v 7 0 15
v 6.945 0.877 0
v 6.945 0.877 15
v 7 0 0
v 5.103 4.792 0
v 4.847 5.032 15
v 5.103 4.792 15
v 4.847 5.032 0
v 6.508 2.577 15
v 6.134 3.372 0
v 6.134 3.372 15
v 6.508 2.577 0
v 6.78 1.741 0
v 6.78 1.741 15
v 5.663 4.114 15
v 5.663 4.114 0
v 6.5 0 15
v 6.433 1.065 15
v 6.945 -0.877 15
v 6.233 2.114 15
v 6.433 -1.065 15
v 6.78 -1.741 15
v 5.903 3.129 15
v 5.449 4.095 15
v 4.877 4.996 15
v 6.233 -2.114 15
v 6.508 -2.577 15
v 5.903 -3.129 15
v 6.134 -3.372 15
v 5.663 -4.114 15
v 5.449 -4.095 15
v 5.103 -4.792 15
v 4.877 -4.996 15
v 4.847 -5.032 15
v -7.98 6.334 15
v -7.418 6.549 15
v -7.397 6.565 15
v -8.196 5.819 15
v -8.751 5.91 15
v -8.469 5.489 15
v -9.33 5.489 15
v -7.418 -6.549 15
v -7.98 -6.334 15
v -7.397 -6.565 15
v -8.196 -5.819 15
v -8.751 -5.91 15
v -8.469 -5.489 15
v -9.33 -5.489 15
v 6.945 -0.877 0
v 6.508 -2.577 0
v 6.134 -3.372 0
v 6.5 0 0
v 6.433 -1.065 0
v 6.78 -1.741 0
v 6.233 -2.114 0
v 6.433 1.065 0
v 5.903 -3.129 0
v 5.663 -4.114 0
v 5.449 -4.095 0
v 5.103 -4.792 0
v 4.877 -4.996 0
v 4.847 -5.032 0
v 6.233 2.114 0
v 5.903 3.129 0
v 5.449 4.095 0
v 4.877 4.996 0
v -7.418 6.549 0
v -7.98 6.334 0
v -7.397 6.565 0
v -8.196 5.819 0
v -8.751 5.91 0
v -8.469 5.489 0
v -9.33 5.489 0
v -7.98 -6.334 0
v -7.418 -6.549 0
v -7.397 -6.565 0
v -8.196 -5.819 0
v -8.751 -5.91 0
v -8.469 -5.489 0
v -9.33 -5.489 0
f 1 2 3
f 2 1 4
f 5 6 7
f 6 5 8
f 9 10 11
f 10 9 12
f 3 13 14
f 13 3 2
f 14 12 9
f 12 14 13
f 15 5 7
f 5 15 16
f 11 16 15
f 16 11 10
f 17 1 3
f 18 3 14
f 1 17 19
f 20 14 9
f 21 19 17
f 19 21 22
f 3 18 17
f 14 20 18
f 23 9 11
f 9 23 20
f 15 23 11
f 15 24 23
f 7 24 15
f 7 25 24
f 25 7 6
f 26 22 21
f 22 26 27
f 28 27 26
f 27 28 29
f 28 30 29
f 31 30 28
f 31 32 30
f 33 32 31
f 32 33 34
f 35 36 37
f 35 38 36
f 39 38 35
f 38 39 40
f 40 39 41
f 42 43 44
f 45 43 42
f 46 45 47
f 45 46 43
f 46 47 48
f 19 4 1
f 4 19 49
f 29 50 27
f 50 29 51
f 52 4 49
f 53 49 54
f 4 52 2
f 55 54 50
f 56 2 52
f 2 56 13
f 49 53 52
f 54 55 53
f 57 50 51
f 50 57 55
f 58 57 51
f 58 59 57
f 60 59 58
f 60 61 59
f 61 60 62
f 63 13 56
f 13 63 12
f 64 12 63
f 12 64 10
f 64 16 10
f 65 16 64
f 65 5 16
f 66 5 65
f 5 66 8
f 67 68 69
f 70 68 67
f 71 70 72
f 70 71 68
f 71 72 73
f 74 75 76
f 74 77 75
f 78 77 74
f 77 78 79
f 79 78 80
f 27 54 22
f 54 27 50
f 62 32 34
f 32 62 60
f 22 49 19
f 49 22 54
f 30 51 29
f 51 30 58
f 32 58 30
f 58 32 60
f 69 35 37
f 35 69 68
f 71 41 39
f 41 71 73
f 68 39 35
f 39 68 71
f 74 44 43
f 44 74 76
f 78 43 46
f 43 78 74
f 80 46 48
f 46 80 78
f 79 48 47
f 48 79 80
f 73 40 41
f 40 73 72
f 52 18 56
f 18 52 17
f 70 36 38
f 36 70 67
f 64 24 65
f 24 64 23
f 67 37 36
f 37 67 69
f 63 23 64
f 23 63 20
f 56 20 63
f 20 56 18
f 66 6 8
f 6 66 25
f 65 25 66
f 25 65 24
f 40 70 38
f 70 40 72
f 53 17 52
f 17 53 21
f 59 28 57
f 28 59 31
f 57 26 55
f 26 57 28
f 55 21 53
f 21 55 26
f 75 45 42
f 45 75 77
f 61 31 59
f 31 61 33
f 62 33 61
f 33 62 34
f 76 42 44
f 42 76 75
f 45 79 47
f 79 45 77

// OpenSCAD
$fn = 50;


difference() {
	union() {
		cylinder(h = 15, r = 7.0000000000);
		translate(v = [-5.0000000000, 0, 0]) {
			cylinder(h = 15, r = 7.0000000000);
		}
	}
	union() {
		cylinder(h = 15, r = 3.2500000000);
		cylinder(h = 15, r = 1.8000000000);
		cylinder(h = 15, r = 1.8000000000);
		cylinder(h = 15, r = 1.8000000000);
		translate(v = [-9.5000000000, 0, 0]) {
			hull() {
				translate(v = [-3.7500000000, 0.0000000000, 0]) {
					cylinder(h = 15, r = 5.5000000000);
				}
				translate(v = [3.7500000000, 0.0000000000, 0]) {
					cylinder(h = 15, r = 5.5000000000);
				}
				translate(v = [-3.7500000000, -0.0000000000, 0]) {
					cylinder(h = 15, r = 5.5000000000);
				}
				translate(v = [3.7500000000, -0.0000000000, 0]) {
					cylinder(h = 15, r = 5.5000000000);
				}
			}
		}
		translate(v = [-2.0000000000, 0, 0.0000000000]) {
			cylinder(h = 15, r = 8.5000000000);
		}
	}
}
